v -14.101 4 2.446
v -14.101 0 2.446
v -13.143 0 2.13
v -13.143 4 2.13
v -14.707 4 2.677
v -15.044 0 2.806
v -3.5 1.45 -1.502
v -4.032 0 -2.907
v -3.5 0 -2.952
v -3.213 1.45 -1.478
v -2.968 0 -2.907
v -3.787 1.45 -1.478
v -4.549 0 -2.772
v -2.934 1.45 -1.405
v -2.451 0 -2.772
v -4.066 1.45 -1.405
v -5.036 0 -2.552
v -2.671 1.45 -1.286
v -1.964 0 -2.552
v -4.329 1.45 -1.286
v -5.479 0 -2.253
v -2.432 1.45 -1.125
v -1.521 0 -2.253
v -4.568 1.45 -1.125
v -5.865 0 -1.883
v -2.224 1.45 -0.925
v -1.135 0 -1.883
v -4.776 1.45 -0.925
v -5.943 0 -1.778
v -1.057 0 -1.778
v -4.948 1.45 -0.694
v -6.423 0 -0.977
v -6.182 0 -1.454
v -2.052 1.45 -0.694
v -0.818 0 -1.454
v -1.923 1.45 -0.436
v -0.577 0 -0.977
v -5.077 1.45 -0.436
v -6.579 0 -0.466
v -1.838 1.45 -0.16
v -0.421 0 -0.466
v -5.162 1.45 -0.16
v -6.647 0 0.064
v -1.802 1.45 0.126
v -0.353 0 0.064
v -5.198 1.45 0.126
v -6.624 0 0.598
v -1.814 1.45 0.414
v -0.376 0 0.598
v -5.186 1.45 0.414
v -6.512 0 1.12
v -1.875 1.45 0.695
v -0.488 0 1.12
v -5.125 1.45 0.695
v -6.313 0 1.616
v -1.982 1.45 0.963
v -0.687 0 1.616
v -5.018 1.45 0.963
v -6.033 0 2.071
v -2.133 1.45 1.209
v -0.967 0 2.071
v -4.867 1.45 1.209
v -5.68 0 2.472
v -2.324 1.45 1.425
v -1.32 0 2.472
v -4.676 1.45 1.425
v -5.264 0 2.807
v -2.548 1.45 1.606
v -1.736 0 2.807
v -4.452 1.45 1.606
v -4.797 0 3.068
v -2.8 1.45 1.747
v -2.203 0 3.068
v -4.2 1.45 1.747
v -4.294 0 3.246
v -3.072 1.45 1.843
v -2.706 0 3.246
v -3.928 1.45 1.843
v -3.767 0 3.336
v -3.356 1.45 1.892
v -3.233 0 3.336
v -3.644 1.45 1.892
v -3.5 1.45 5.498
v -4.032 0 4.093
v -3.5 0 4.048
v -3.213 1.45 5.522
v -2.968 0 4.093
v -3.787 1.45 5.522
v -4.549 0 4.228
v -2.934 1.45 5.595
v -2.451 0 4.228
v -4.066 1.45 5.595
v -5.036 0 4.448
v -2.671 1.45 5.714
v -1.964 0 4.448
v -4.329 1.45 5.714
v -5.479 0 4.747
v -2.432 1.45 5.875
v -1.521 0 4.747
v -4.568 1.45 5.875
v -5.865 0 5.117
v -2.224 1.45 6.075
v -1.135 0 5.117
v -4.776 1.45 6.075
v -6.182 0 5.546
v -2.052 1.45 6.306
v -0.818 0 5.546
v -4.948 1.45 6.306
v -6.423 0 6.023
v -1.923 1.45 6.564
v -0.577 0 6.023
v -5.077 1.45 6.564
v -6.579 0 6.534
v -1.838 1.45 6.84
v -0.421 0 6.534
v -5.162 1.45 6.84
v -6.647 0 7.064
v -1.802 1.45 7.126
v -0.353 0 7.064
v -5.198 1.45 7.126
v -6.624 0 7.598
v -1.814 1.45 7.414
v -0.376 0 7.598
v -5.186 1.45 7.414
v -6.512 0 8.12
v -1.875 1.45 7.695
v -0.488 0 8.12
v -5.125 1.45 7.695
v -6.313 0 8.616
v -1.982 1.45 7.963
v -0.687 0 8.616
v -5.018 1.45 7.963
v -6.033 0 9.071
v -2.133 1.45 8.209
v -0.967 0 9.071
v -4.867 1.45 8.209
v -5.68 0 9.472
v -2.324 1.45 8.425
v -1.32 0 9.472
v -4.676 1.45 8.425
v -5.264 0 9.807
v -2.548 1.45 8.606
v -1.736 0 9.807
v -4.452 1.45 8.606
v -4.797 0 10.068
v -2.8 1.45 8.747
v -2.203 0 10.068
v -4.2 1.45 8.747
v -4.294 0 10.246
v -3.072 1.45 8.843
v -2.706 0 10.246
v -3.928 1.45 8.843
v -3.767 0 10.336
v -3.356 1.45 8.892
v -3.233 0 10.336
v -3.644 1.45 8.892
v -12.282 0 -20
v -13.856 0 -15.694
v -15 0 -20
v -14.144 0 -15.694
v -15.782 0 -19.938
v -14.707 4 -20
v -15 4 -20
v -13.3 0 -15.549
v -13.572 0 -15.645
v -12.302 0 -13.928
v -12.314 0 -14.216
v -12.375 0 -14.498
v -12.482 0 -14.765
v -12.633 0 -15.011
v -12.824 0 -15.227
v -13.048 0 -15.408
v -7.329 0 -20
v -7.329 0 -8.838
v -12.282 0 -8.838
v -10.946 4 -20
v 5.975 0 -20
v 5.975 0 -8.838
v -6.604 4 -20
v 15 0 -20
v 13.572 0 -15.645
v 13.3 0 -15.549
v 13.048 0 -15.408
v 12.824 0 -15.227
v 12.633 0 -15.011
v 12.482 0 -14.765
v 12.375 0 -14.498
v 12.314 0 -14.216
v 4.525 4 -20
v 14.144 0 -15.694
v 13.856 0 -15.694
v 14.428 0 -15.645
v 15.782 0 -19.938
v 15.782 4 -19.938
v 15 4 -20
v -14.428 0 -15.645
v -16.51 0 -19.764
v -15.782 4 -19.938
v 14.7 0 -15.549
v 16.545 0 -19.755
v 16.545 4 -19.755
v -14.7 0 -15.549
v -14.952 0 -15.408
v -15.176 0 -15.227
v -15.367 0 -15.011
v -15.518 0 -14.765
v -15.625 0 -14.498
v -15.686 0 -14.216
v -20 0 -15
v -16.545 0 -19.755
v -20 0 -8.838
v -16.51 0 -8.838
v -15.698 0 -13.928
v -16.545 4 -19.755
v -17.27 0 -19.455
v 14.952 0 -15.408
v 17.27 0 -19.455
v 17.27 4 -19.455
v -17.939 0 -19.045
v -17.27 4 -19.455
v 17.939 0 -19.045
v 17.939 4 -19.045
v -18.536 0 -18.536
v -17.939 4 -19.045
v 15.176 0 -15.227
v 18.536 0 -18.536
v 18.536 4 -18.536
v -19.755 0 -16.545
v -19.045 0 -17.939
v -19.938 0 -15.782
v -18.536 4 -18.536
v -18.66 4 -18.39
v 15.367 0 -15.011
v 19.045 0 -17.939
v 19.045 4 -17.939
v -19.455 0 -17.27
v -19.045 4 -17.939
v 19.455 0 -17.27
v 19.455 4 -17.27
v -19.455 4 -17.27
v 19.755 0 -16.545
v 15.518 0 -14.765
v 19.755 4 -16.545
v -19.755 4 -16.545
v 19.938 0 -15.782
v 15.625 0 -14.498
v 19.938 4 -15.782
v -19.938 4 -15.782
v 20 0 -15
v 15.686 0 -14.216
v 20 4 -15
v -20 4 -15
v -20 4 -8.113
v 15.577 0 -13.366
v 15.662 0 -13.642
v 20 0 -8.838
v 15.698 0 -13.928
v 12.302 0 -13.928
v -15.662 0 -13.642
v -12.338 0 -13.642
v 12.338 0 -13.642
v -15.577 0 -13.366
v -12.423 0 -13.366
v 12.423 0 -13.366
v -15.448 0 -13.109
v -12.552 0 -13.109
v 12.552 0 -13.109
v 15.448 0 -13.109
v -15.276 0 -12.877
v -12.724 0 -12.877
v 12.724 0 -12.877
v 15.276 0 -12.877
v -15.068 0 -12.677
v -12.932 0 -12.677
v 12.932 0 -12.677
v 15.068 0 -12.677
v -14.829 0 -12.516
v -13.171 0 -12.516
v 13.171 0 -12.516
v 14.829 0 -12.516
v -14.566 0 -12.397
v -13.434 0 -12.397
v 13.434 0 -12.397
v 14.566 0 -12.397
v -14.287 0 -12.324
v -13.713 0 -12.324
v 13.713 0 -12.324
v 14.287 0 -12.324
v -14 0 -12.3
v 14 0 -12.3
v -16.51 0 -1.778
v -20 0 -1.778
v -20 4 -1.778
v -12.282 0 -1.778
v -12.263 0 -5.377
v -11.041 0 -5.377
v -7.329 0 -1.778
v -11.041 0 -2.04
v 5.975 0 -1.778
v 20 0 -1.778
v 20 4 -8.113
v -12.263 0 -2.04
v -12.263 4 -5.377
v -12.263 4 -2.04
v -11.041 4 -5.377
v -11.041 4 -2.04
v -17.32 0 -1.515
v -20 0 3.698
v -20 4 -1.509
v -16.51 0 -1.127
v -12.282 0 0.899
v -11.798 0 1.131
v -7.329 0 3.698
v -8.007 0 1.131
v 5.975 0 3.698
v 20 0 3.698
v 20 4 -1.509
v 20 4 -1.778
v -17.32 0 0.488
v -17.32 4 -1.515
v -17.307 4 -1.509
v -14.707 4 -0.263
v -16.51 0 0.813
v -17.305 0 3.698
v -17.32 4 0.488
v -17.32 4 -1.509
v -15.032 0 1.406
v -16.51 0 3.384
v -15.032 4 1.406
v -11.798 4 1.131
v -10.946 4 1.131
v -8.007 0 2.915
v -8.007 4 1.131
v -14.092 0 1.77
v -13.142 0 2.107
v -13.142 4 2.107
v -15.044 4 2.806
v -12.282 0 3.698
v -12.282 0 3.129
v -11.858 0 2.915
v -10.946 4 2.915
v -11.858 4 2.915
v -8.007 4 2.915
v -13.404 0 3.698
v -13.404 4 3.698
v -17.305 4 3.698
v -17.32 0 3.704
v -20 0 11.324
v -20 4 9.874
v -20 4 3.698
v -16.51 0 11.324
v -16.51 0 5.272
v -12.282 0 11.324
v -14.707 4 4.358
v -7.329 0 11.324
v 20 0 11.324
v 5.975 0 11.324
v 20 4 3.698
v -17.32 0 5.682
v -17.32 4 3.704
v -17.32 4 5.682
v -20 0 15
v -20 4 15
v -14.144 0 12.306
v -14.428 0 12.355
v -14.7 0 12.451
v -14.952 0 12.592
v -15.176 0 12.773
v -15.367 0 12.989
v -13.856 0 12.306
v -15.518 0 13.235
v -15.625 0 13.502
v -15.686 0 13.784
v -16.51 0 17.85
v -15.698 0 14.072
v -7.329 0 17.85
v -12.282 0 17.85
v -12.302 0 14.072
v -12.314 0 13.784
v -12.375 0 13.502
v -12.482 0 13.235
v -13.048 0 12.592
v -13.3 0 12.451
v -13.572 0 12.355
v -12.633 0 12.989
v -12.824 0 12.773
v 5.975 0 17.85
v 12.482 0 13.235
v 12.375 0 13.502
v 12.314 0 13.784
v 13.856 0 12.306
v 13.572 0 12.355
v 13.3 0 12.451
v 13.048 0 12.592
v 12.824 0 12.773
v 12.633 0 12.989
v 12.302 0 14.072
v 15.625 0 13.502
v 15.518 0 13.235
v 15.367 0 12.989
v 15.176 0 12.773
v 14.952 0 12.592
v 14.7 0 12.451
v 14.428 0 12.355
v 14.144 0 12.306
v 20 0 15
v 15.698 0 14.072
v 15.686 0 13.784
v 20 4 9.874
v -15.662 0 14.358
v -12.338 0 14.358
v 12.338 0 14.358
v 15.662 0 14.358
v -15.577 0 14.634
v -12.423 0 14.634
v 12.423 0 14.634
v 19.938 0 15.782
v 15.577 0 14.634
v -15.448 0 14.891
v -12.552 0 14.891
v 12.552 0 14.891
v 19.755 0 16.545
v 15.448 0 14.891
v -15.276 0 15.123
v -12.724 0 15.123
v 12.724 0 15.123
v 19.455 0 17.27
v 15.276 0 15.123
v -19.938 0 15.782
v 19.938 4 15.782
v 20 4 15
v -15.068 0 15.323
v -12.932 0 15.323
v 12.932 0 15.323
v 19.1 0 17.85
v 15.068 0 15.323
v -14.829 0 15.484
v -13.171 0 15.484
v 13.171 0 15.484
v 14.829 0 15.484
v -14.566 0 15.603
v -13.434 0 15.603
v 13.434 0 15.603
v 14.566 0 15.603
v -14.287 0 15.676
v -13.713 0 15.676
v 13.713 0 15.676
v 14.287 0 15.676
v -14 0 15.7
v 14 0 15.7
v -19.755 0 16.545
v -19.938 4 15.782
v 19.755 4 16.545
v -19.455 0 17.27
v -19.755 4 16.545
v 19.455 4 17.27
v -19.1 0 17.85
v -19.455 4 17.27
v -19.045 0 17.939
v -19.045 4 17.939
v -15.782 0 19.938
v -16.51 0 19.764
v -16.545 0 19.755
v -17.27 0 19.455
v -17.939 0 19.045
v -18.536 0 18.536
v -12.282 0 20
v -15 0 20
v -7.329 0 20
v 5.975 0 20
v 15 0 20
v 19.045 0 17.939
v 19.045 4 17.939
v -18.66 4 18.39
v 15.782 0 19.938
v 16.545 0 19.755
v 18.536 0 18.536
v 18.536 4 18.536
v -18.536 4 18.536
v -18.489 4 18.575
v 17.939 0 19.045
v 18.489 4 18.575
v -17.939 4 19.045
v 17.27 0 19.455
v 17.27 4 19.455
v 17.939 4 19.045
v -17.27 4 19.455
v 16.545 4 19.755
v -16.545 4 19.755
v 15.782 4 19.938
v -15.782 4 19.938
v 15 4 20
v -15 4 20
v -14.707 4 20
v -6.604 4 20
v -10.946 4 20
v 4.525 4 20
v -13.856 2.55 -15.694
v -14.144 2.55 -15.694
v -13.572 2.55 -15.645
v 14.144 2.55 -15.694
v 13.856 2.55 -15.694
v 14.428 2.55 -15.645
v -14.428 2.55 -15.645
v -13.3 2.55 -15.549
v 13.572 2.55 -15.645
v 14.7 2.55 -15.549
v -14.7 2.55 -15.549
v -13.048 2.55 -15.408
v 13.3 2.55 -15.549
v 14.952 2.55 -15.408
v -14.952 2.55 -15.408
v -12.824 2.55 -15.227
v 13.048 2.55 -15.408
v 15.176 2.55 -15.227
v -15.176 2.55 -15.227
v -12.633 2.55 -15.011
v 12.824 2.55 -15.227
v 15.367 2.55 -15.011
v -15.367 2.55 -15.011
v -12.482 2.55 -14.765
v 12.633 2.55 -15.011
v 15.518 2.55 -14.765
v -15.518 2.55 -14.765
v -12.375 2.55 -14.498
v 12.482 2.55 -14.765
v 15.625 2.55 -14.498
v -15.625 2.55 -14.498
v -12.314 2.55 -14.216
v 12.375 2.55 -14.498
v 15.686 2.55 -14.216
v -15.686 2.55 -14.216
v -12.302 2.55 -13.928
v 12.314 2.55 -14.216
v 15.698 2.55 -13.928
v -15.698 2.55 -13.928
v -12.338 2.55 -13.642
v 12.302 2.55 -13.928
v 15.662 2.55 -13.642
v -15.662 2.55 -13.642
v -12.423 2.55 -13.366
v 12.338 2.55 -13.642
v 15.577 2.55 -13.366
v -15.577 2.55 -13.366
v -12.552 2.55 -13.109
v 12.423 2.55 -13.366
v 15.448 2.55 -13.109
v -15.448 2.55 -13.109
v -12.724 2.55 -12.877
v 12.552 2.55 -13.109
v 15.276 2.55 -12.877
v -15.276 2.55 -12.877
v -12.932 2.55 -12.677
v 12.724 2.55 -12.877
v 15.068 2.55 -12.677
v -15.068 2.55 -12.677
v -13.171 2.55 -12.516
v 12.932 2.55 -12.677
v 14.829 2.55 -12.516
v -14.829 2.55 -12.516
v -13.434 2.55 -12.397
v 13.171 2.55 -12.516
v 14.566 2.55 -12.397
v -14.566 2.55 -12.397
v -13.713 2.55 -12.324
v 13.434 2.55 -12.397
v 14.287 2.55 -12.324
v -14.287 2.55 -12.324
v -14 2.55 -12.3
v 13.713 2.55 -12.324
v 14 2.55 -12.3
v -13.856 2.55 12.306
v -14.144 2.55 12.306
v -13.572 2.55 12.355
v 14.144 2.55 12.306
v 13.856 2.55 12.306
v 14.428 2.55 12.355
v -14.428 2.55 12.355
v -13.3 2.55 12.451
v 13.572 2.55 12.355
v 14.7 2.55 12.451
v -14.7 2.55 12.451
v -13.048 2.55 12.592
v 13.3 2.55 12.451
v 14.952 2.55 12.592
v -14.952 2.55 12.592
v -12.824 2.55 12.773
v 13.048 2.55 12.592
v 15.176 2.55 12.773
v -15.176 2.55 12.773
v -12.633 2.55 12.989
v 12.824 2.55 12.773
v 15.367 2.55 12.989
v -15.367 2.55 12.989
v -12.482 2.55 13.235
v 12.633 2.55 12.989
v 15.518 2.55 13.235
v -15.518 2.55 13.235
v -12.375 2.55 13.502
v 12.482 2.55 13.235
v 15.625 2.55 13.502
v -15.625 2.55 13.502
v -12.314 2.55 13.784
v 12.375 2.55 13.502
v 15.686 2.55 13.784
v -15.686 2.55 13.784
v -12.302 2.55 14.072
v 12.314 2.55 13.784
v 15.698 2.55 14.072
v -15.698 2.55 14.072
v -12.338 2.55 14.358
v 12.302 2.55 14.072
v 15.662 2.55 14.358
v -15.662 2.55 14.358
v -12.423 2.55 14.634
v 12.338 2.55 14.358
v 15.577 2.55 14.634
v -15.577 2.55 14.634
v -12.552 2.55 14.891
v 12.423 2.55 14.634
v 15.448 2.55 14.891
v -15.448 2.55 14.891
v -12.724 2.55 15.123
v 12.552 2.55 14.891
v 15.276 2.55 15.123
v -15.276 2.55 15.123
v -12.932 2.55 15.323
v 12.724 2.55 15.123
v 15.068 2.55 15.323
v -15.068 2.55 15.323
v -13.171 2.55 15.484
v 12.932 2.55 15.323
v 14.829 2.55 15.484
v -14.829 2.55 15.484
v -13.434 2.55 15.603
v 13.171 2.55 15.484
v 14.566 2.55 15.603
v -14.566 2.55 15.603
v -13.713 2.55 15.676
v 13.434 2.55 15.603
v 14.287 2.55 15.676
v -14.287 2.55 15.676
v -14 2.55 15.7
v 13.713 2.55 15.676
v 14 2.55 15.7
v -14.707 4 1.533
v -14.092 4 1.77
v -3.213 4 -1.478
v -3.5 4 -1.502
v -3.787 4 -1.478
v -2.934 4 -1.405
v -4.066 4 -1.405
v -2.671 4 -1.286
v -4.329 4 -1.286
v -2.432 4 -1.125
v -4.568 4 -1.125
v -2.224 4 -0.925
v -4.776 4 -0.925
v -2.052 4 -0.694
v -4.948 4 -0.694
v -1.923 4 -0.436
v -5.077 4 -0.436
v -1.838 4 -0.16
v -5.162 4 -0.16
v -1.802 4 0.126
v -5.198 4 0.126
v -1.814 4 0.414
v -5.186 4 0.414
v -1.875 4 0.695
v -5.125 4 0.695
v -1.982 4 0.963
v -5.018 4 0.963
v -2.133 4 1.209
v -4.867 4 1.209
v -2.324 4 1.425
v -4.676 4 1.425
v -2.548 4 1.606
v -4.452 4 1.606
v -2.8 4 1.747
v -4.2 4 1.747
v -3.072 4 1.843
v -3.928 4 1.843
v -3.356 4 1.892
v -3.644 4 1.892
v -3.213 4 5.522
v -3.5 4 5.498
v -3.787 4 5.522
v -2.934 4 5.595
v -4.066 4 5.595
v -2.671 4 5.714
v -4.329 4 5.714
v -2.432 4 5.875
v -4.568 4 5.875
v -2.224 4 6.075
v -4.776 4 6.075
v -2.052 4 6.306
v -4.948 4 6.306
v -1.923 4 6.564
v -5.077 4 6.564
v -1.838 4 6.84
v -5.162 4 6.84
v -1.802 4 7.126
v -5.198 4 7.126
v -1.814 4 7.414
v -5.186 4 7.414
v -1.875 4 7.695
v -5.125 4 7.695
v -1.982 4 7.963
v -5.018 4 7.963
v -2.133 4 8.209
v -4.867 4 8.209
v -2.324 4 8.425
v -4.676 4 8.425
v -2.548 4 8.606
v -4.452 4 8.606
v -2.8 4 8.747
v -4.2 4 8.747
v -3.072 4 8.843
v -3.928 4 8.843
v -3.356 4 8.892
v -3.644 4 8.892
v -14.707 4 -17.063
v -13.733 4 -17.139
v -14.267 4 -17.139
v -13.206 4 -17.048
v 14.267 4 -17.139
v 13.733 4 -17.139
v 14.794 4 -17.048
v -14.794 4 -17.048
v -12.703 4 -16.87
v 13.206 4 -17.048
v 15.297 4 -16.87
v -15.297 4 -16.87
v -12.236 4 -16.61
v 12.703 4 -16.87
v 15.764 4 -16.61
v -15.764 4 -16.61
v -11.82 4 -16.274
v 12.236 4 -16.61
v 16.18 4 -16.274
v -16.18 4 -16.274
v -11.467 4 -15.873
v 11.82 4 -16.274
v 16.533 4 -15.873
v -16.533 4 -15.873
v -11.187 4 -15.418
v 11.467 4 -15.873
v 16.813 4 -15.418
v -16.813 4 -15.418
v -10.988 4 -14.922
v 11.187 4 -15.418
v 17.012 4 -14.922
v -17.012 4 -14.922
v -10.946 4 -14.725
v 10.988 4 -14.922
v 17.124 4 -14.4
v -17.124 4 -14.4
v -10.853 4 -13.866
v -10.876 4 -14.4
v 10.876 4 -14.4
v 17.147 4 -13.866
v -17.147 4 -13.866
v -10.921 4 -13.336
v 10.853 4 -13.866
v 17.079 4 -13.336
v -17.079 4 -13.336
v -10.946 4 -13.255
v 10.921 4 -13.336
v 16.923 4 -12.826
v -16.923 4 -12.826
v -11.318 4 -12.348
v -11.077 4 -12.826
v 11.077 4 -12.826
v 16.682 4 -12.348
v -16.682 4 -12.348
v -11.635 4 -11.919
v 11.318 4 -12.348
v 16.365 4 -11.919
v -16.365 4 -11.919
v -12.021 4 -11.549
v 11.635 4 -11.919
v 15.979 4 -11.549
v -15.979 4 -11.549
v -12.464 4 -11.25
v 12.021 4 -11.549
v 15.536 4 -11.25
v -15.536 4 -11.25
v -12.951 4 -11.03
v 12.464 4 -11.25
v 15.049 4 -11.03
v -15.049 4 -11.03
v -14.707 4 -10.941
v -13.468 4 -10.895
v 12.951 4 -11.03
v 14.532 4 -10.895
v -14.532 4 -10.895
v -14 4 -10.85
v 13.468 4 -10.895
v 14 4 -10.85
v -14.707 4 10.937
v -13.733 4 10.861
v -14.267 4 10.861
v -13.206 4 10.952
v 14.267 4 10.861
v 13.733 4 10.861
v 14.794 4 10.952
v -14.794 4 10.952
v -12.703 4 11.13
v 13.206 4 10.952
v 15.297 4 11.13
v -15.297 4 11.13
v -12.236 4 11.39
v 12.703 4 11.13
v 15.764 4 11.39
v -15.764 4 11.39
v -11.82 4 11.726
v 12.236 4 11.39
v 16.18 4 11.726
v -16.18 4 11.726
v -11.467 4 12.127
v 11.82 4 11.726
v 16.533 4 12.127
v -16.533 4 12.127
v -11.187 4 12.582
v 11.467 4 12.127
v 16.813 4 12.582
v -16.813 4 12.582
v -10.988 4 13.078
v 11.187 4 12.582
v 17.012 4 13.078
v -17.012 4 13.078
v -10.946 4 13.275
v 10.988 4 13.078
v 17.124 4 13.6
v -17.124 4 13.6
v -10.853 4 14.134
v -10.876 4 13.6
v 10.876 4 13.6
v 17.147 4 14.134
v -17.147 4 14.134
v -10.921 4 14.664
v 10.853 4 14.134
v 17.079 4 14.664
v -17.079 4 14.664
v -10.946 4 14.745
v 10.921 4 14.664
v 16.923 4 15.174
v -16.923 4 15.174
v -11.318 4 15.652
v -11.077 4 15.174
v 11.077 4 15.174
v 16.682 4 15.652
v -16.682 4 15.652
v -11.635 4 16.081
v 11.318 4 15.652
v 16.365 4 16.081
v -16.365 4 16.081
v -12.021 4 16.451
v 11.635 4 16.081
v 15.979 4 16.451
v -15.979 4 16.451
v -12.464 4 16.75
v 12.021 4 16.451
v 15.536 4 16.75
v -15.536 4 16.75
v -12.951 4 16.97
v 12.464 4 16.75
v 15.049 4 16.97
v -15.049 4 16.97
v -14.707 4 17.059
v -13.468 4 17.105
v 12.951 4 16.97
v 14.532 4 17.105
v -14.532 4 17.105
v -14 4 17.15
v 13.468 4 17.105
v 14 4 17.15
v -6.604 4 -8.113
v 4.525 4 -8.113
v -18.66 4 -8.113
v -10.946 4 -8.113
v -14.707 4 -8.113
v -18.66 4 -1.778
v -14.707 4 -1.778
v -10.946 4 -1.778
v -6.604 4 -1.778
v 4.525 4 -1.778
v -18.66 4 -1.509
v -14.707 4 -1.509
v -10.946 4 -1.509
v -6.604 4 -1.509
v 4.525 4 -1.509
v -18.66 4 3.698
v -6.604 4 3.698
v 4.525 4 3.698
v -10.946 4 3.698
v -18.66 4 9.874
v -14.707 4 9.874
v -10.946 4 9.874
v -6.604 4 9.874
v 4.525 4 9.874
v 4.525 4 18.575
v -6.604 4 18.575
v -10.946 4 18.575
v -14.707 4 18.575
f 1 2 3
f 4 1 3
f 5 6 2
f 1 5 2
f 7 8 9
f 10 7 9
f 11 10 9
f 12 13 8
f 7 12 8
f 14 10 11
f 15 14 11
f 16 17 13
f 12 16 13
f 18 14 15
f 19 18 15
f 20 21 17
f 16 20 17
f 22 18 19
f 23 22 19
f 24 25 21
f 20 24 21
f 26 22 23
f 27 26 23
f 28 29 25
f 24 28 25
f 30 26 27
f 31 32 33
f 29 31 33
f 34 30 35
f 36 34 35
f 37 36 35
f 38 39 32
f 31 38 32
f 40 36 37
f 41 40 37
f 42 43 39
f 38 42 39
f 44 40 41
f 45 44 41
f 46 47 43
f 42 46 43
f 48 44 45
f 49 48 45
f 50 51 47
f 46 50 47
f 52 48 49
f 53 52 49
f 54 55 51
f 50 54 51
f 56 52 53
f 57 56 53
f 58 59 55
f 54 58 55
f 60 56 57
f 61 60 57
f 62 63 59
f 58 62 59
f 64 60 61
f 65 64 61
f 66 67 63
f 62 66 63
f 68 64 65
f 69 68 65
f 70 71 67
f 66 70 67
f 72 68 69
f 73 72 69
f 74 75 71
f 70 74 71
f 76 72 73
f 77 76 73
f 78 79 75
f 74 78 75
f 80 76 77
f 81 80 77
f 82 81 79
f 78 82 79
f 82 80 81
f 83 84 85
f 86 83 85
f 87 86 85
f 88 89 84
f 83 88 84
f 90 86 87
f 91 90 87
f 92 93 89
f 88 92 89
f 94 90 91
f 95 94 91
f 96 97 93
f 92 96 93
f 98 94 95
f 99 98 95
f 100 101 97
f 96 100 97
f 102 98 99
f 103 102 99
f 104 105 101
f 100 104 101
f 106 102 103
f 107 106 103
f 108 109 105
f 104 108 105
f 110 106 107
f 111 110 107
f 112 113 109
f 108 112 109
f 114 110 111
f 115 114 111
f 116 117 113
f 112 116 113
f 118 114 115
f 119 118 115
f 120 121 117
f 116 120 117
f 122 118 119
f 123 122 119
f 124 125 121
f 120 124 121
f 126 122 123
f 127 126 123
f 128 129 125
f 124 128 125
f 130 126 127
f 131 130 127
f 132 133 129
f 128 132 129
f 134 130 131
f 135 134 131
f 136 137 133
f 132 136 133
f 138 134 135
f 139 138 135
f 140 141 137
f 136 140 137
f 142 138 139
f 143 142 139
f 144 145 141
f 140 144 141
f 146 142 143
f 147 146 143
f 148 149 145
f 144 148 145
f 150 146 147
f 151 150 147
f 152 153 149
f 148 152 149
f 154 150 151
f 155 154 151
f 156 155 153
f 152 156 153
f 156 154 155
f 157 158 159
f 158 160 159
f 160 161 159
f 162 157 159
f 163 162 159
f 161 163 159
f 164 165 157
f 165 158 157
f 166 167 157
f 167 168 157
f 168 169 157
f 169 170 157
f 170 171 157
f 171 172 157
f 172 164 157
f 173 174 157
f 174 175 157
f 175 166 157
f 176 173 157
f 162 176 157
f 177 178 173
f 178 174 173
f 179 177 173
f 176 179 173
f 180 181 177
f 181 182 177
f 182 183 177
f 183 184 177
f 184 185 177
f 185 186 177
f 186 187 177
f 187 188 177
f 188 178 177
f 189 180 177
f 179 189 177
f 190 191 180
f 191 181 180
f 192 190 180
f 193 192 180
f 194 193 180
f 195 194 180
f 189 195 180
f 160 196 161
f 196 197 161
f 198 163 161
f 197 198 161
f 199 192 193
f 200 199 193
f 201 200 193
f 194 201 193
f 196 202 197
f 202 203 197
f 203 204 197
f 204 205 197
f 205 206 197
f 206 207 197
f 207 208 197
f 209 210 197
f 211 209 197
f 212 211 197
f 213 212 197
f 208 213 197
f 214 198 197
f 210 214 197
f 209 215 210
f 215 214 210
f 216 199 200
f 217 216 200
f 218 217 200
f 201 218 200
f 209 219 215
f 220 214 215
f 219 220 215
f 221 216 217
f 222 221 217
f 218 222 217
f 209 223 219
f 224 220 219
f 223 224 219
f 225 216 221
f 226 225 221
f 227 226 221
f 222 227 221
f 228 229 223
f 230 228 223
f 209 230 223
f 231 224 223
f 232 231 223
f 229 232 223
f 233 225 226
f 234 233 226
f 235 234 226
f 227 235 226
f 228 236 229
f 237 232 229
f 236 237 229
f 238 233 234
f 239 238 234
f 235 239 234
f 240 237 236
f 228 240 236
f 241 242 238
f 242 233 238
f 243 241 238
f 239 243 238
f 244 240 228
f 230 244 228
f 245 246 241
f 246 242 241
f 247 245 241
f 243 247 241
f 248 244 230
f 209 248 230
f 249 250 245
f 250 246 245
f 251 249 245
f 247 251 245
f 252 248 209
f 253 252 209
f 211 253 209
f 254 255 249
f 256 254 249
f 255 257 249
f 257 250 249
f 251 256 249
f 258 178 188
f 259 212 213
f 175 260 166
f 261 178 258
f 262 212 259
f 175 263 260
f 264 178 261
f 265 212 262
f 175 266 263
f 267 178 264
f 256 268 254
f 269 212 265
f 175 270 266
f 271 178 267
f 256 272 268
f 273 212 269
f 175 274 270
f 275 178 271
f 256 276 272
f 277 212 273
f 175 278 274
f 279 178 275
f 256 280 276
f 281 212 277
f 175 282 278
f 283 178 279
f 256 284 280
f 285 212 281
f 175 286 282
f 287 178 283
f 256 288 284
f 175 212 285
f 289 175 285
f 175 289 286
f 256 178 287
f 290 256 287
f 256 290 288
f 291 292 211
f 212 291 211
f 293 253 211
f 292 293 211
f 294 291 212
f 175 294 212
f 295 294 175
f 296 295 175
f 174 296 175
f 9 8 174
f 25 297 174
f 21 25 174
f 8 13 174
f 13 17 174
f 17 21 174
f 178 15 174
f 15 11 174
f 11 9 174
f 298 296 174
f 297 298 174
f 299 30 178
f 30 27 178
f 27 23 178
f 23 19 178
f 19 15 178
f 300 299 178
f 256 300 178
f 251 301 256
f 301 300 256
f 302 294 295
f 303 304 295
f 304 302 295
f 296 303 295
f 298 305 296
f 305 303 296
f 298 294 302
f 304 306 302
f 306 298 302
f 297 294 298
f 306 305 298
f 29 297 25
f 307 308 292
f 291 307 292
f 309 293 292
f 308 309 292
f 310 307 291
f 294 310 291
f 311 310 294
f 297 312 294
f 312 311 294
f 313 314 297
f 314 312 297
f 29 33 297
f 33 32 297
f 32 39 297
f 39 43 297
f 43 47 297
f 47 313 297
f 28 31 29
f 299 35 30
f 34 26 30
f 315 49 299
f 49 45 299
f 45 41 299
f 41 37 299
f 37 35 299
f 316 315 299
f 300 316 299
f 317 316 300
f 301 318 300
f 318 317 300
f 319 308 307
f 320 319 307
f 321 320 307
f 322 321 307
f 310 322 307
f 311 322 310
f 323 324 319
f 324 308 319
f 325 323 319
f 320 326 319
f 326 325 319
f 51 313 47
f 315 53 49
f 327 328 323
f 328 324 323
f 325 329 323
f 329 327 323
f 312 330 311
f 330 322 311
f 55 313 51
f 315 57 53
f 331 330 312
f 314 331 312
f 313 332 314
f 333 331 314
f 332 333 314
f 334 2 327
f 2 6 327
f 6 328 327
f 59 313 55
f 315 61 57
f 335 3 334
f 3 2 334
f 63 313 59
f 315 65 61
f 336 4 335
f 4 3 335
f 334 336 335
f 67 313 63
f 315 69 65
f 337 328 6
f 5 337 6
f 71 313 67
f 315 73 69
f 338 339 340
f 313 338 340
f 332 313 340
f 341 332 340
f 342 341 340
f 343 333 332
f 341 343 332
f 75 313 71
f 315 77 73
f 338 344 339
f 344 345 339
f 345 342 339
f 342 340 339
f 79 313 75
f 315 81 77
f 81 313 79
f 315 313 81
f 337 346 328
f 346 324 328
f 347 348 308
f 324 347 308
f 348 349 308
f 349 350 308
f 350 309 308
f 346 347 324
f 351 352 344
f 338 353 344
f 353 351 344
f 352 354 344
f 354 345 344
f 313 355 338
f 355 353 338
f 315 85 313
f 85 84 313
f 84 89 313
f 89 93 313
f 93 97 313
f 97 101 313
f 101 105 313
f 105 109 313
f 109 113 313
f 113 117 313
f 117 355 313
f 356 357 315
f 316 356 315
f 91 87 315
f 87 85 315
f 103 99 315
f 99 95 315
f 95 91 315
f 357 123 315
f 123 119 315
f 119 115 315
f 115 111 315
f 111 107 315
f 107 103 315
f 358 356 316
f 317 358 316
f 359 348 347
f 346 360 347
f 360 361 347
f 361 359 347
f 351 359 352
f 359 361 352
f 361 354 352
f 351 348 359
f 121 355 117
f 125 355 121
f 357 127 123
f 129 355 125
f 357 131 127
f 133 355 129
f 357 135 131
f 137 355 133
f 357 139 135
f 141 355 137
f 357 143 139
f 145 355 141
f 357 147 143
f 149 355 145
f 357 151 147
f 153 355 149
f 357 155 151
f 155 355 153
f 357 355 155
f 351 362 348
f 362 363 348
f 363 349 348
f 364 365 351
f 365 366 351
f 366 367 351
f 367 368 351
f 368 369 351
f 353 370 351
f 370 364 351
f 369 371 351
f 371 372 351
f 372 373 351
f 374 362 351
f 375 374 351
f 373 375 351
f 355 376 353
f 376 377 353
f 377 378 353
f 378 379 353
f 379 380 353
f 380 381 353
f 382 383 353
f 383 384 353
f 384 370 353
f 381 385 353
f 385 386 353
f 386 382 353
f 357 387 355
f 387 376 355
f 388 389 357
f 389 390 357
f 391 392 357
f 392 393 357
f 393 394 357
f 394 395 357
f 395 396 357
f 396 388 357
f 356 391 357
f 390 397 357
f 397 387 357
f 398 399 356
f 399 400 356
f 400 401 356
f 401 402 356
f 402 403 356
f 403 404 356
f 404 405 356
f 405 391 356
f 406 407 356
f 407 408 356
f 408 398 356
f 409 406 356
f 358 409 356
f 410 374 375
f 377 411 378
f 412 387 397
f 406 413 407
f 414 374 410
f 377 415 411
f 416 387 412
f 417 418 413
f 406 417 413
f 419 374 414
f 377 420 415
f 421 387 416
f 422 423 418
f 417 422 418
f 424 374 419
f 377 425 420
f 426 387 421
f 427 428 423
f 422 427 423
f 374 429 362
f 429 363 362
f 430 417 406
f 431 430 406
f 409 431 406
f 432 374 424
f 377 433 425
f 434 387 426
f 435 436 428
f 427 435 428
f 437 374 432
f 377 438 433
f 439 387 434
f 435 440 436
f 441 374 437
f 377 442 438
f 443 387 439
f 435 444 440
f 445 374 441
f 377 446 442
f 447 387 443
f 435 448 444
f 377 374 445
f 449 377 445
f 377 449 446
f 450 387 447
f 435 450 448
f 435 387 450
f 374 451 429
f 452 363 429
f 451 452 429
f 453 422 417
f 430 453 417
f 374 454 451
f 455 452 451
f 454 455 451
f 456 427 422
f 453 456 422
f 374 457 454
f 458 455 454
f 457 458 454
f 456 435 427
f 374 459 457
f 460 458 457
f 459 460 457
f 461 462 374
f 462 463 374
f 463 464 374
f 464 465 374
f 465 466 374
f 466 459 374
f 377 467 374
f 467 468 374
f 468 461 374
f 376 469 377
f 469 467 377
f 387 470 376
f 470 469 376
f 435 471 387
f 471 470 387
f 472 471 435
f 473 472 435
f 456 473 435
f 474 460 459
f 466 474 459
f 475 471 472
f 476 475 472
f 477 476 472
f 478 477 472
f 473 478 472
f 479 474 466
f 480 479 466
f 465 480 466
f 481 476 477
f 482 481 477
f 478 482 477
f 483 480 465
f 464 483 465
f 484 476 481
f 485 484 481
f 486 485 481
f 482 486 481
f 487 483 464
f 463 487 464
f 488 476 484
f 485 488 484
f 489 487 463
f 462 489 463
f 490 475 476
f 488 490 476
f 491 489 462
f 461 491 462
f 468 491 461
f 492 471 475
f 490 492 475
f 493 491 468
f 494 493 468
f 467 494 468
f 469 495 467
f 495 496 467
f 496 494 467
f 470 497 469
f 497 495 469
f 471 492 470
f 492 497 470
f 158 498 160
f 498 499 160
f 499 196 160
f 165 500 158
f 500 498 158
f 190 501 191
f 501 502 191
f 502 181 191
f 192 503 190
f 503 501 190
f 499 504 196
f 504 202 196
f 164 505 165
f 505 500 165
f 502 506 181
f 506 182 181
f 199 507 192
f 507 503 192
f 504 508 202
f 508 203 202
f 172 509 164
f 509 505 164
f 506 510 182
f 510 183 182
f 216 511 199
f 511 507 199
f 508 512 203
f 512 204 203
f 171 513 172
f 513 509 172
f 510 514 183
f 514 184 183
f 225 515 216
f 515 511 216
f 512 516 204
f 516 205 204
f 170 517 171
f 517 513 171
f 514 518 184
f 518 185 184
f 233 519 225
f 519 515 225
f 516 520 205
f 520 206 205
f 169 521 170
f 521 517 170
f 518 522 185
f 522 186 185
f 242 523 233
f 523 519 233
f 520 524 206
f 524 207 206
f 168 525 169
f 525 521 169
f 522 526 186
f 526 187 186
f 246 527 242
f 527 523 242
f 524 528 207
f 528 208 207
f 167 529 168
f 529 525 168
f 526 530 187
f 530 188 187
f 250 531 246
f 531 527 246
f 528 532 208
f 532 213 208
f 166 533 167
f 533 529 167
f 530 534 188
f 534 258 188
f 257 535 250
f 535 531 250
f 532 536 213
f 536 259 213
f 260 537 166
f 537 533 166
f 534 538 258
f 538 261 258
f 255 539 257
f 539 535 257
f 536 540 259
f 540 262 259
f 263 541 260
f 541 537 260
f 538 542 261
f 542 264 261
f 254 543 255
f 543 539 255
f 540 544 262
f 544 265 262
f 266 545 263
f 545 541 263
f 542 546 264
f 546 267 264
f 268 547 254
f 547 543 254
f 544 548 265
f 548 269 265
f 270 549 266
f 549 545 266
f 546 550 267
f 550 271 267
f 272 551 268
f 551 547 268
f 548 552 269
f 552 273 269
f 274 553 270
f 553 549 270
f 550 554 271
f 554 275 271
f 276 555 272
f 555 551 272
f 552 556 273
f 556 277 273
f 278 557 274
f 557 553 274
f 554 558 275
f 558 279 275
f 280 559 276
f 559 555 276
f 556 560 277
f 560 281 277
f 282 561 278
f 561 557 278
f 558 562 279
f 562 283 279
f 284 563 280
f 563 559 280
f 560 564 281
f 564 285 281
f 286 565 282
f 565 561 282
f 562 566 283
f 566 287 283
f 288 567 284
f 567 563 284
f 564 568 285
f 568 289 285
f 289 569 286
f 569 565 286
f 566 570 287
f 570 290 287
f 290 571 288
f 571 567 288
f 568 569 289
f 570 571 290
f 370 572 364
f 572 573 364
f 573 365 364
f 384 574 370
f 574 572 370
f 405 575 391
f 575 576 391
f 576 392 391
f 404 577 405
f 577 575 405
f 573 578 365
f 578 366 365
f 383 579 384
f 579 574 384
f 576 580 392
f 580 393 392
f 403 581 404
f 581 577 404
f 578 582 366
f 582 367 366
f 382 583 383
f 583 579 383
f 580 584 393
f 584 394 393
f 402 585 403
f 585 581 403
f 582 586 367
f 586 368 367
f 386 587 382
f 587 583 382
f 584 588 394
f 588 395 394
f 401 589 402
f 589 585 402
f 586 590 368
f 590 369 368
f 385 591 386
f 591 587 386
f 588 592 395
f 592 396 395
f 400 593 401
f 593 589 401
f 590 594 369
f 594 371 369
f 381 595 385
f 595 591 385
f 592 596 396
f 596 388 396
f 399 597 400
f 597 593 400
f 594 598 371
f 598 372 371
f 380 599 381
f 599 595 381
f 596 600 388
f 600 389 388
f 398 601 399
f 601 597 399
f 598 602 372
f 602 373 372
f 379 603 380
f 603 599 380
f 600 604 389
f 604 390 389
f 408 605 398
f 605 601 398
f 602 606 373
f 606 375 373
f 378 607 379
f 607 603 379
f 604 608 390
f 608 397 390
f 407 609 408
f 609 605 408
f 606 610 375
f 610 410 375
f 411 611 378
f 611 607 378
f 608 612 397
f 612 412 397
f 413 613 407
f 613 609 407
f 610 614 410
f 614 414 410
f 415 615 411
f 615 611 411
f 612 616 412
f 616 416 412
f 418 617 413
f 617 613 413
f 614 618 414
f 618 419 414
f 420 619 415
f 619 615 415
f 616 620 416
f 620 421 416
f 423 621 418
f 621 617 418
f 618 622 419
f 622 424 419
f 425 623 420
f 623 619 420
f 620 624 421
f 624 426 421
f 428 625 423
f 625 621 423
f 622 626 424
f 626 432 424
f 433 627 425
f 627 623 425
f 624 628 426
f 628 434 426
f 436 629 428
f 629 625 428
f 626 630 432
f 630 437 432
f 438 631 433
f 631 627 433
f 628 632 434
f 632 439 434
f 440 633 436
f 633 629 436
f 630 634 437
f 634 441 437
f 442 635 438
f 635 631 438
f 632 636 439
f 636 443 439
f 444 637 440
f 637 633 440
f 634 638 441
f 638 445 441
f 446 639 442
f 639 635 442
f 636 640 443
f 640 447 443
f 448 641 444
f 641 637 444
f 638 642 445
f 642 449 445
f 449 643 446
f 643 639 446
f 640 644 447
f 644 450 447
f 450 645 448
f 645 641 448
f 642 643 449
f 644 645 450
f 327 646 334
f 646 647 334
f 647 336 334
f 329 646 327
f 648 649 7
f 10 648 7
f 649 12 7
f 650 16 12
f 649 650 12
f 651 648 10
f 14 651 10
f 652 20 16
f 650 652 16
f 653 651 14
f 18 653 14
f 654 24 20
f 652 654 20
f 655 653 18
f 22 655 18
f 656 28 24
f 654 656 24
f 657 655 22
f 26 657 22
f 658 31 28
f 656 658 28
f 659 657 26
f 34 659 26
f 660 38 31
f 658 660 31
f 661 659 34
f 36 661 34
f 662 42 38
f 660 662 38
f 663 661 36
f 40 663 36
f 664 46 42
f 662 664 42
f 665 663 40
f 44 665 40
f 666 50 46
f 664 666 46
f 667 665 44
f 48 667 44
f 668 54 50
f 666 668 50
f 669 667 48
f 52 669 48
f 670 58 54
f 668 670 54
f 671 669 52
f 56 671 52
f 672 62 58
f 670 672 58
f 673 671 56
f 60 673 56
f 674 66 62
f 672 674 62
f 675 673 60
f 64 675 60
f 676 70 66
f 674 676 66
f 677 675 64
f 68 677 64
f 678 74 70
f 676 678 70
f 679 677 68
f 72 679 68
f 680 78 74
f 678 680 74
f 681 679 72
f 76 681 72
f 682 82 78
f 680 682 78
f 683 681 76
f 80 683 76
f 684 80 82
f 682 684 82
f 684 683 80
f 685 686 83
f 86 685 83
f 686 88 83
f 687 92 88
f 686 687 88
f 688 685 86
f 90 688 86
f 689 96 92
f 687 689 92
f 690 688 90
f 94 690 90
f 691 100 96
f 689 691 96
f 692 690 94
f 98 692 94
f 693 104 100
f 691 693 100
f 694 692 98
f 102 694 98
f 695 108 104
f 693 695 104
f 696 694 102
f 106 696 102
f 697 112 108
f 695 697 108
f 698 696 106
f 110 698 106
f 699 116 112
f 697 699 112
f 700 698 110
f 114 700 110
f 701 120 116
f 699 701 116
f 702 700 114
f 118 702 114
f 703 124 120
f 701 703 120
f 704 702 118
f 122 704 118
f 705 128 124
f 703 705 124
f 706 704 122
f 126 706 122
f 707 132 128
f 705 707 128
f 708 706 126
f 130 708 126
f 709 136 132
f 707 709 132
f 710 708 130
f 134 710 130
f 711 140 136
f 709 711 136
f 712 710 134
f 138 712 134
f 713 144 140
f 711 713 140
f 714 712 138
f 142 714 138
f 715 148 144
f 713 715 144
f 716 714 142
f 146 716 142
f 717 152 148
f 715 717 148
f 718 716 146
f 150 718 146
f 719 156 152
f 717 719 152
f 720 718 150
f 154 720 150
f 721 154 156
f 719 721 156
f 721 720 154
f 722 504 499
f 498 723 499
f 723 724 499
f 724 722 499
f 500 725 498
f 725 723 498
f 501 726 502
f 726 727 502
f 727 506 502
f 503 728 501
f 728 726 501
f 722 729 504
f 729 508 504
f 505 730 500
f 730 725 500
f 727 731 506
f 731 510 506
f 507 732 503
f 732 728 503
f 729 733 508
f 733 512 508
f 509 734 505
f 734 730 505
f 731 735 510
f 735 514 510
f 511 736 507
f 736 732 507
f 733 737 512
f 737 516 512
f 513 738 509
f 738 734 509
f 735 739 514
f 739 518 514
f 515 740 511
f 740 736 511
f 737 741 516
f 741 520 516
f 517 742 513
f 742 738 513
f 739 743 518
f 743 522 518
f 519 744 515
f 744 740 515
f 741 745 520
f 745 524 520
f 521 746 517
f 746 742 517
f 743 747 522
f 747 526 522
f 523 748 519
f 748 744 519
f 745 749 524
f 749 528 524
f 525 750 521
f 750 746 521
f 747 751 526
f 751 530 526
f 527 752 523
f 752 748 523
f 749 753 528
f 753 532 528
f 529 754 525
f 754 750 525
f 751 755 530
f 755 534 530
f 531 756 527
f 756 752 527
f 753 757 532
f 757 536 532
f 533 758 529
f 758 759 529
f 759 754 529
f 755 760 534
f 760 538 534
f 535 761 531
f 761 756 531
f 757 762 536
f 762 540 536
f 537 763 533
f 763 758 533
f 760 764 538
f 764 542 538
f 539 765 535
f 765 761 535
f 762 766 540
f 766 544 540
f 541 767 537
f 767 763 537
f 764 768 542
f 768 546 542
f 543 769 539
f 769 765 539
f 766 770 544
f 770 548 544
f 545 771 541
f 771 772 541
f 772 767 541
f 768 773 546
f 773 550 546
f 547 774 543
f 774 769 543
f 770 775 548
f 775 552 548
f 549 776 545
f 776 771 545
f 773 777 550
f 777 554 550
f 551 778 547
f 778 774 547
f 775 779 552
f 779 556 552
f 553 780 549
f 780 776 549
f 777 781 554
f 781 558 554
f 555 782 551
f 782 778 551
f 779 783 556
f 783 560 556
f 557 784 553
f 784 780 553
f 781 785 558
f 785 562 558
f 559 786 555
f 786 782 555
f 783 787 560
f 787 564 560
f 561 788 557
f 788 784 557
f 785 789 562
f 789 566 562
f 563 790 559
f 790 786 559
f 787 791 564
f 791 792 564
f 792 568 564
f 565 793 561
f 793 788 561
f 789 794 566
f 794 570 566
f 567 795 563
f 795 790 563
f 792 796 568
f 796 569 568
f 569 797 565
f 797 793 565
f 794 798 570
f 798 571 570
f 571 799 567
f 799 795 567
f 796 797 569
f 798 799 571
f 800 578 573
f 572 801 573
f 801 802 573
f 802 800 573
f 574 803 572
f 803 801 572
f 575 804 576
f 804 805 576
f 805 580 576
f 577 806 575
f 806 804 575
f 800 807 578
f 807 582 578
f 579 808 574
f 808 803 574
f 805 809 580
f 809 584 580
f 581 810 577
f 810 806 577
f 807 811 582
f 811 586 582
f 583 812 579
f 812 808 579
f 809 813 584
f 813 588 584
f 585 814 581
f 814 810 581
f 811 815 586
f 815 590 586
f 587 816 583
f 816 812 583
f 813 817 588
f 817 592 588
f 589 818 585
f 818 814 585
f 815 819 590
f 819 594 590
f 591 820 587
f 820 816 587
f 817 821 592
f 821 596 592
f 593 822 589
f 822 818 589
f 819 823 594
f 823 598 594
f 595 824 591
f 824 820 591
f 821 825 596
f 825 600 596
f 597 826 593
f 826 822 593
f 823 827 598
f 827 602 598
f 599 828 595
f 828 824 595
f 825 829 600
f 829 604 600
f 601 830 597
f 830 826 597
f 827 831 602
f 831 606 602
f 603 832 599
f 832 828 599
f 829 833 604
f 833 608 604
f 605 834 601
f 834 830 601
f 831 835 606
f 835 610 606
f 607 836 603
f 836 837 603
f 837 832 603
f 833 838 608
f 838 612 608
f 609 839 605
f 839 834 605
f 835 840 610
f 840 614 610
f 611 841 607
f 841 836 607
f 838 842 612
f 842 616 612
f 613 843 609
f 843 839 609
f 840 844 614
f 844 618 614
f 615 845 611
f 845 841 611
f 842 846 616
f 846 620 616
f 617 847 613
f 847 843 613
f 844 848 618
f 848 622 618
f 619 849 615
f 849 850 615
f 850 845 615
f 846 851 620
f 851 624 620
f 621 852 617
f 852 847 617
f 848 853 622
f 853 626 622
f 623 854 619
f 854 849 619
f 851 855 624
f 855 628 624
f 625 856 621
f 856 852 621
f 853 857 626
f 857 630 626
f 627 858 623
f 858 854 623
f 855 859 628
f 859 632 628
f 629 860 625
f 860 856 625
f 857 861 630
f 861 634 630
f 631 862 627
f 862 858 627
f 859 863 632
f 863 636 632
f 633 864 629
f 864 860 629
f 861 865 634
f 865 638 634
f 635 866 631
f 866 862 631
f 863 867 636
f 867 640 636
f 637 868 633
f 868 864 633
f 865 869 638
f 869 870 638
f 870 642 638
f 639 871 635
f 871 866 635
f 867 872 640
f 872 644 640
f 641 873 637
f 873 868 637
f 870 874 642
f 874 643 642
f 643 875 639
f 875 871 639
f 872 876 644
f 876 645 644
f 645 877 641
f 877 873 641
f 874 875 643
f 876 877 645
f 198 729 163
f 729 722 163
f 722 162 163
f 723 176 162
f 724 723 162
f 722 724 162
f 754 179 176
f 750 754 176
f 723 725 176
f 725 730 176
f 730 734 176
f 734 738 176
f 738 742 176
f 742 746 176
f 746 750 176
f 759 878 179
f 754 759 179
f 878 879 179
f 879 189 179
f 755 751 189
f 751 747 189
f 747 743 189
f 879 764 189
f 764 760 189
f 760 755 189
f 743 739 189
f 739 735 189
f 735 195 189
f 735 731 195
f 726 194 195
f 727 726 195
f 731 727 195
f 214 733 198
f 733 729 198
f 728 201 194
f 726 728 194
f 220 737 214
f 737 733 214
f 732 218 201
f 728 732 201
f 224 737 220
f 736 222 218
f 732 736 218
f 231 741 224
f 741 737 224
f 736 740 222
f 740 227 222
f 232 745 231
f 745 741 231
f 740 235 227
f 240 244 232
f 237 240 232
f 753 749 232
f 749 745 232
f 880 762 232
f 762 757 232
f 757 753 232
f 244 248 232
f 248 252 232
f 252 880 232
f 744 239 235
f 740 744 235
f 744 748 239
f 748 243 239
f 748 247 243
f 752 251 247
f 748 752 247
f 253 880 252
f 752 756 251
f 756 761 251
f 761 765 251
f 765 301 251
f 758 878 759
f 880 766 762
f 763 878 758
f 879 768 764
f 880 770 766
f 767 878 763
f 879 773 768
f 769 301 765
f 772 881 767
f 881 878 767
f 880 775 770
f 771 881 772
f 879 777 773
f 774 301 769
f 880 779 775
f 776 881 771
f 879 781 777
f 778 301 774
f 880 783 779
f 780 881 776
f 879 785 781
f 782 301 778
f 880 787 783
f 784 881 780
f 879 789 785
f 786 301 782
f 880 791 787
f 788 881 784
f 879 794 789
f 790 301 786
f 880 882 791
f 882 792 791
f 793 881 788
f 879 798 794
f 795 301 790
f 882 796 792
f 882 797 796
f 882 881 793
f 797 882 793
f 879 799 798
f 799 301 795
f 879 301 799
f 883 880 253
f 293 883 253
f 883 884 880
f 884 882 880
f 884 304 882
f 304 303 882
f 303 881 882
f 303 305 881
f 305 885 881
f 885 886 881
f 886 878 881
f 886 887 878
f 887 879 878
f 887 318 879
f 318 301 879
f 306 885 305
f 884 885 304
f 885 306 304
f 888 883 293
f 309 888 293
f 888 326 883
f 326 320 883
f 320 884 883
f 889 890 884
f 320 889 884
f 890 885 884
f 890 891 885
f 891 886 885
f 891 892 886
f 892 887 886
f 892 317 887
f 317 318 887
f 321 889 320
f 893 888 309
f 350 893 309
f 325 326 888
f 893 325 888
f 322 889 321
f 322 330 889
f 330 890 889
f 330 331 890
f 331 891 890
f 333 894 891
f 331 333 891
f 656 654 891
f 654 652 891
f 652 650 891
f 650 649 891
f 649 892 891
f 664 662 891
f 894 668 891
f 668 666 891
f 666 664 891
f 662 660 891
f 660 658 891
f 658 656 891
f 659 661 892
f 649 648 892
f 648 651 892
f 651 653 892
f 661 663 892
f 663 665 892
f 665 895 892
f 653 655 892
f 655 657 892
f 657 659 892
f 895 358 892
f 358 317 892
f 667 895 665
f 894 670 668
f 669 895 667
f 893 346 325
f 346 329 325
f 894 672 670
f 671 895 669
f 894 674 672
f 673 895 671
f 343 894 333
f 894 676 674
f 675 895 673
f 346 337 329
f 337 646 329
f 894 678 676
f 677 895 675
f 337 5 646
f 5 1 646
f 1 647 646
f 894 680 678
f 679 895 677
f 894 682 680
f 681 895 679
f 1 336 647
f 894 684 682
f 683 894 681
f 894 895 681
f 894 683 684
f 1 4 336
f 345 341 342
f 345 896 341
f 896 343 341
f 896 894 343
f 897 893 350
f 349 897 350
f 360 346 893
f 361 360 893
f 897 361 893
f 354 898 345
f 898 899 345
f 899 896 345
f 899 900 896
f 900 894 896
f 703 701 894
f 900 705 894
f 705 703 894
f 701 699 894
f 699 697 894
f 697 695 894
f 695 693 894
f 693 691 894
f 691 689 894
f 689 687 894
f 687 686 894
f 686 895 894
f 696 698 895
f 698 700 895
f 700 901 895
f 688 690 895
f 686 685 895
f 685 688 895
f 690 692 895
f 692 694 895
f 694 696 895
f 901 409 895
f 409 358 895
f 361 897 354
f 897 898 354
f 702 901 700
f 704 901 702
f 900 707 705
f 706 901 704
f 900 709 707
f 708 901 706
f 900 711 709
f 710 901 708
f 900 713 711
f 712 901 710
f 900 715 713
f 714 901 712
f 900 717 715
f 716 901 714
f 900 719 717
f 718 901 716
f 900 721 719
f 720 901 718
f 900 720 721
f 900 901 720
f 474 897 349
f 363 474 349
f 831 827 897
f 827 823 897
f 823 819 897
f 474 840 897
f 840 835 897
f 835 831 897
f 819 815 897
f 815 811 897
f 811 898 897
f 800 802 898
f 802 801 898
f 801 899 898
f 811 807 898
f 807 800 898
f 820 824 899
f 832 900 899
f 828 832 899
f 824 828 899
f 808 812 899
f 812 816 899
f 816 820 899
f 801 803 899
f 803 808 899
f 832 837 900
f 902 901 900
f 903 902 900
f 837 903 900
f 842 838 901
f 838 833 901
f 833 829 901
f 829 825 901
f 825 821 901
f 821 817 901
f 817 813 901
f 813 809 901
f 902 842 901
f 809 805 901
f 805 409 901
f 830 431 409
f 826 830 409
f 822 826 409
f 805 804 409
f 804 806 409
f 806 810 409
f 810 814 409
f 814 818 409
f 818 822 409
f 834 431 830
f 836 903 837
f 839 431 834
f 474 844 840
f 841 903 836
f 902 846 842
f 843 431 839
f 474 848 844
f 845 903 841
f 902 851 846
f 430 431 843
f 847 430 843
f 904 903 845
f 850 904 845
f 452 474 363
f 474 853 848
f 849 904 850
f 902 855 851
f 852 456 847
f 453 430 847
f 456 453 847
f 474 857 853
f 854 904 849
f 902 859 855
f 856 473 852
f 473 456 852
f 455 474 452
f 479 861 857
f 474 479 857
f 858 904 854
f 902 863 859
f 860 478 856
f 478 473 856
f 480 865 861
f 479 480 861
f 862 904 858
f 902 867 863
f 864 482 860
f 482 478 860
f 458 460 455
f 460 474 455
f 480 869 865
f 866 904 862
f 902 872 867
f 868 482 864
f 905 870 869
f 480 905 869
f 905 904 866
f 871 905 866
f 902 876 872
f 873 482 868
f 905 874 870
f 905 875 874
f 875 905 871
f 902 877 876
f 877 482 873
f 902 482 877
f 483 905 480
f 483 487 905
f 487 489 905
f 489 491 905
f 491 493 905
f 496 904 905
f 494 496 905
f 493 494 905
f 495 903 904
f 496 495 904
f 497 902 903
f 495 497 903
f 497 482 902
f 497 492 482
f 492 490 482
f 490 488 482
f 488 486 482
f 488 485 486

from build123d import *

# Parameters (mm, degrees)
BOSS_EXTRUDE1_DEPTH                                 = 4
CSK_FOR_M3_COUNTERSUNK_FLAT_HEAD_SCREW1_D           = 3.4
CSK_FOR_M3_COUNTERSUNK_FLAT_HEAD_SCREW1_CSINK_D     = 6.3
CSK_FOR_M3_COUNTERSUNK_FLAT_HEAD_SCREW1_CSINK_ANGLE = 90
CSK_FOR_M3_COUNTERSUNK_FLAT_HEAD_SCREW2_D           = 3.4
CSK_FOR_M3_COUNTERSUNK_FLAT_HEAD_SCREW2_CSINK_D     = 6.3
CSK_FOR_M3_COUNTERSUNK_FLAT_HEAD_SCREW2_CSINK_ANGLE = 90
SKETCH7_W                                           = 1.222113554
SKETCH7_H                                           = 3.336226563
CUT_EXTRUDE1_DEPTH                                  = 4


with BuildPart() as part:
    # Sketch1 → Boss-Extrude1 (new body)
    with BuildSketch(Plane(origin=(0, 0, 0), x_dir=(1, 0, 0), z_dir=(0, 1, 0))):
        with BuildLine():
            Line((-15, -20), (15, -20))
            ThreePointArc((15, -20), (18.535533906, -18.535533906), (20, -15))
            Line((20, -15), (20, 15))
            ThreePointArc((20, 15), (18.535533906, 18.535533906), (15, 20))
            Line((15, 20), (-15, 20))
            ThreePointArc((-15, 20), (-18.535533906, 18.535533906), (-20, 15))
            Line((-20, 15), (-20, -15))
            ThreePointArc((-20, -15), (-18.535533906, -18.535533906), (-15, -20))
        make_face()
    extrude(amount=BOSS_EXTRUDE1_DEPTH)

    # CSK for M3 Countersunk Flat Head Screw1 (through all)
    with Locations(Plane(origin=(-14, 4, -14), x_dir=(0, 0, 1), z_dir=(0, 1, 0))):
        with Locations((0, 0), (0, 28), (28, 28), (28, 0)):
            CounterSinkHole(CSK_FOR_M3_COUNTERSUNK_FLAT_HEAD_SCREW1_D / 2, CSK_FOR_M3_COUNTERSUNK_FLAT_HEAD_SCREW1_CSINK_D / 2, counter_sink_angle=CSK_FOR_M3_COUNTERSUNK_FLAT_HEAD_SCREW1_CSINK_ANGLE)

    # CSK for M3 Countersunk Flat Head Screw2 (through all)
    with Locations(Plane(origin=(0, 0, 0), x_dir=(-1, 0, 0), z_dir=(0, -1, 0))):
        with Locations((3.5, -0.1976847), (3.5, -7.1976847)):
            CounterSinkHole(CSK_FOR_M3_COUNTERSUNK_FLAT_HEAD_SCREW2_D / 2, CSK_FOR_M3_COUNTERSUNK_FLAT_HEAD_SCREW2_CSINK_D / 2, counter_sink_angle=CSK_FOR_M3_COUNTERSUNK_FLAT_HEAD_SCREW2_CSINK_ANGLE)

    # Sketch7 → Cut-Extrude1 (cut)
    with BuildSketch(Plane(origin=(0, 4, 0), x_dir=(1, 0, 0), z_dir=(0, 1, 0))):
        with Locations((-11.652287397, 3.708478162)):
            Rectangle(SKETCH7_W, SKETCH7_H)
        with BuildLine():
            add(Edge.make_bspline(
                [(-15.043692162, -2.806314504), (-14.880436161, -2.741055239), (-14.5584639, -2.612351406), (-14.077627456, -2.435113354), (-13.607003536, -2.275557203), (-13.296000815, -2.177928582), (-13.143053989, -2.129916179)],
                knots=[0, 0, 0, 0, 0.000527431, 0.001040195, 0.001537166, 0.002018074, 0.002018074, 0.002018074, 0.002018074], degree=3))
            Line((-13.143053989, -2.129916179), (-13.142217189, -2.10714082))
            add(Edge.make_bspline(
                [(-13.142217189, -2.10714082), (-13.300142366, -2.053259121), (-13.613682824, -1.946283823), (-14.081290903, -1.775427697), (-14.553659216, -1.59628161), (-14.870442844, -1.470693808), (-15.032410797, -1.406482159)],
                knots=[0, 0, 0, 0, 0.000500579, 0.000993836, 0.001493443, 0.002016132, 0.002016132, 0.002016132, 0.002016132], degree=3))
            Line((-15.032410797, -1.406482159), (-17.320356965, -0.487540494))
            Line((-17.320356965, -0.487540494), (-17.320356965, 1.515068939))
            Line((-17.320356965, 1.515068939), (-11.797862272, -1.130802918))
            Line((-11.797862272, -1.130802918), (-8.007023631, -1.130802918))
            Line((-8.007023631, -1.130802918), (-8.007023631, -2.914806972))
            Line((-8.007023631, -2.914806972), (-11.858418799, -2.914806972))
            Line((-11.858418799, -2.914806972), (-17.320356965, -5.682049098))
            Line((-17.320356965, -5.682049098), (-17.320356965, -3.703713718))
            Line((-17.320356965, -3.703713718), (-15.043692162, -2.806314504))
        make_face()
    extrude(amount=-CUT_EXTRUDE1_DEPTH, mode=Mode.SUBTRACT)


solid = part.part
